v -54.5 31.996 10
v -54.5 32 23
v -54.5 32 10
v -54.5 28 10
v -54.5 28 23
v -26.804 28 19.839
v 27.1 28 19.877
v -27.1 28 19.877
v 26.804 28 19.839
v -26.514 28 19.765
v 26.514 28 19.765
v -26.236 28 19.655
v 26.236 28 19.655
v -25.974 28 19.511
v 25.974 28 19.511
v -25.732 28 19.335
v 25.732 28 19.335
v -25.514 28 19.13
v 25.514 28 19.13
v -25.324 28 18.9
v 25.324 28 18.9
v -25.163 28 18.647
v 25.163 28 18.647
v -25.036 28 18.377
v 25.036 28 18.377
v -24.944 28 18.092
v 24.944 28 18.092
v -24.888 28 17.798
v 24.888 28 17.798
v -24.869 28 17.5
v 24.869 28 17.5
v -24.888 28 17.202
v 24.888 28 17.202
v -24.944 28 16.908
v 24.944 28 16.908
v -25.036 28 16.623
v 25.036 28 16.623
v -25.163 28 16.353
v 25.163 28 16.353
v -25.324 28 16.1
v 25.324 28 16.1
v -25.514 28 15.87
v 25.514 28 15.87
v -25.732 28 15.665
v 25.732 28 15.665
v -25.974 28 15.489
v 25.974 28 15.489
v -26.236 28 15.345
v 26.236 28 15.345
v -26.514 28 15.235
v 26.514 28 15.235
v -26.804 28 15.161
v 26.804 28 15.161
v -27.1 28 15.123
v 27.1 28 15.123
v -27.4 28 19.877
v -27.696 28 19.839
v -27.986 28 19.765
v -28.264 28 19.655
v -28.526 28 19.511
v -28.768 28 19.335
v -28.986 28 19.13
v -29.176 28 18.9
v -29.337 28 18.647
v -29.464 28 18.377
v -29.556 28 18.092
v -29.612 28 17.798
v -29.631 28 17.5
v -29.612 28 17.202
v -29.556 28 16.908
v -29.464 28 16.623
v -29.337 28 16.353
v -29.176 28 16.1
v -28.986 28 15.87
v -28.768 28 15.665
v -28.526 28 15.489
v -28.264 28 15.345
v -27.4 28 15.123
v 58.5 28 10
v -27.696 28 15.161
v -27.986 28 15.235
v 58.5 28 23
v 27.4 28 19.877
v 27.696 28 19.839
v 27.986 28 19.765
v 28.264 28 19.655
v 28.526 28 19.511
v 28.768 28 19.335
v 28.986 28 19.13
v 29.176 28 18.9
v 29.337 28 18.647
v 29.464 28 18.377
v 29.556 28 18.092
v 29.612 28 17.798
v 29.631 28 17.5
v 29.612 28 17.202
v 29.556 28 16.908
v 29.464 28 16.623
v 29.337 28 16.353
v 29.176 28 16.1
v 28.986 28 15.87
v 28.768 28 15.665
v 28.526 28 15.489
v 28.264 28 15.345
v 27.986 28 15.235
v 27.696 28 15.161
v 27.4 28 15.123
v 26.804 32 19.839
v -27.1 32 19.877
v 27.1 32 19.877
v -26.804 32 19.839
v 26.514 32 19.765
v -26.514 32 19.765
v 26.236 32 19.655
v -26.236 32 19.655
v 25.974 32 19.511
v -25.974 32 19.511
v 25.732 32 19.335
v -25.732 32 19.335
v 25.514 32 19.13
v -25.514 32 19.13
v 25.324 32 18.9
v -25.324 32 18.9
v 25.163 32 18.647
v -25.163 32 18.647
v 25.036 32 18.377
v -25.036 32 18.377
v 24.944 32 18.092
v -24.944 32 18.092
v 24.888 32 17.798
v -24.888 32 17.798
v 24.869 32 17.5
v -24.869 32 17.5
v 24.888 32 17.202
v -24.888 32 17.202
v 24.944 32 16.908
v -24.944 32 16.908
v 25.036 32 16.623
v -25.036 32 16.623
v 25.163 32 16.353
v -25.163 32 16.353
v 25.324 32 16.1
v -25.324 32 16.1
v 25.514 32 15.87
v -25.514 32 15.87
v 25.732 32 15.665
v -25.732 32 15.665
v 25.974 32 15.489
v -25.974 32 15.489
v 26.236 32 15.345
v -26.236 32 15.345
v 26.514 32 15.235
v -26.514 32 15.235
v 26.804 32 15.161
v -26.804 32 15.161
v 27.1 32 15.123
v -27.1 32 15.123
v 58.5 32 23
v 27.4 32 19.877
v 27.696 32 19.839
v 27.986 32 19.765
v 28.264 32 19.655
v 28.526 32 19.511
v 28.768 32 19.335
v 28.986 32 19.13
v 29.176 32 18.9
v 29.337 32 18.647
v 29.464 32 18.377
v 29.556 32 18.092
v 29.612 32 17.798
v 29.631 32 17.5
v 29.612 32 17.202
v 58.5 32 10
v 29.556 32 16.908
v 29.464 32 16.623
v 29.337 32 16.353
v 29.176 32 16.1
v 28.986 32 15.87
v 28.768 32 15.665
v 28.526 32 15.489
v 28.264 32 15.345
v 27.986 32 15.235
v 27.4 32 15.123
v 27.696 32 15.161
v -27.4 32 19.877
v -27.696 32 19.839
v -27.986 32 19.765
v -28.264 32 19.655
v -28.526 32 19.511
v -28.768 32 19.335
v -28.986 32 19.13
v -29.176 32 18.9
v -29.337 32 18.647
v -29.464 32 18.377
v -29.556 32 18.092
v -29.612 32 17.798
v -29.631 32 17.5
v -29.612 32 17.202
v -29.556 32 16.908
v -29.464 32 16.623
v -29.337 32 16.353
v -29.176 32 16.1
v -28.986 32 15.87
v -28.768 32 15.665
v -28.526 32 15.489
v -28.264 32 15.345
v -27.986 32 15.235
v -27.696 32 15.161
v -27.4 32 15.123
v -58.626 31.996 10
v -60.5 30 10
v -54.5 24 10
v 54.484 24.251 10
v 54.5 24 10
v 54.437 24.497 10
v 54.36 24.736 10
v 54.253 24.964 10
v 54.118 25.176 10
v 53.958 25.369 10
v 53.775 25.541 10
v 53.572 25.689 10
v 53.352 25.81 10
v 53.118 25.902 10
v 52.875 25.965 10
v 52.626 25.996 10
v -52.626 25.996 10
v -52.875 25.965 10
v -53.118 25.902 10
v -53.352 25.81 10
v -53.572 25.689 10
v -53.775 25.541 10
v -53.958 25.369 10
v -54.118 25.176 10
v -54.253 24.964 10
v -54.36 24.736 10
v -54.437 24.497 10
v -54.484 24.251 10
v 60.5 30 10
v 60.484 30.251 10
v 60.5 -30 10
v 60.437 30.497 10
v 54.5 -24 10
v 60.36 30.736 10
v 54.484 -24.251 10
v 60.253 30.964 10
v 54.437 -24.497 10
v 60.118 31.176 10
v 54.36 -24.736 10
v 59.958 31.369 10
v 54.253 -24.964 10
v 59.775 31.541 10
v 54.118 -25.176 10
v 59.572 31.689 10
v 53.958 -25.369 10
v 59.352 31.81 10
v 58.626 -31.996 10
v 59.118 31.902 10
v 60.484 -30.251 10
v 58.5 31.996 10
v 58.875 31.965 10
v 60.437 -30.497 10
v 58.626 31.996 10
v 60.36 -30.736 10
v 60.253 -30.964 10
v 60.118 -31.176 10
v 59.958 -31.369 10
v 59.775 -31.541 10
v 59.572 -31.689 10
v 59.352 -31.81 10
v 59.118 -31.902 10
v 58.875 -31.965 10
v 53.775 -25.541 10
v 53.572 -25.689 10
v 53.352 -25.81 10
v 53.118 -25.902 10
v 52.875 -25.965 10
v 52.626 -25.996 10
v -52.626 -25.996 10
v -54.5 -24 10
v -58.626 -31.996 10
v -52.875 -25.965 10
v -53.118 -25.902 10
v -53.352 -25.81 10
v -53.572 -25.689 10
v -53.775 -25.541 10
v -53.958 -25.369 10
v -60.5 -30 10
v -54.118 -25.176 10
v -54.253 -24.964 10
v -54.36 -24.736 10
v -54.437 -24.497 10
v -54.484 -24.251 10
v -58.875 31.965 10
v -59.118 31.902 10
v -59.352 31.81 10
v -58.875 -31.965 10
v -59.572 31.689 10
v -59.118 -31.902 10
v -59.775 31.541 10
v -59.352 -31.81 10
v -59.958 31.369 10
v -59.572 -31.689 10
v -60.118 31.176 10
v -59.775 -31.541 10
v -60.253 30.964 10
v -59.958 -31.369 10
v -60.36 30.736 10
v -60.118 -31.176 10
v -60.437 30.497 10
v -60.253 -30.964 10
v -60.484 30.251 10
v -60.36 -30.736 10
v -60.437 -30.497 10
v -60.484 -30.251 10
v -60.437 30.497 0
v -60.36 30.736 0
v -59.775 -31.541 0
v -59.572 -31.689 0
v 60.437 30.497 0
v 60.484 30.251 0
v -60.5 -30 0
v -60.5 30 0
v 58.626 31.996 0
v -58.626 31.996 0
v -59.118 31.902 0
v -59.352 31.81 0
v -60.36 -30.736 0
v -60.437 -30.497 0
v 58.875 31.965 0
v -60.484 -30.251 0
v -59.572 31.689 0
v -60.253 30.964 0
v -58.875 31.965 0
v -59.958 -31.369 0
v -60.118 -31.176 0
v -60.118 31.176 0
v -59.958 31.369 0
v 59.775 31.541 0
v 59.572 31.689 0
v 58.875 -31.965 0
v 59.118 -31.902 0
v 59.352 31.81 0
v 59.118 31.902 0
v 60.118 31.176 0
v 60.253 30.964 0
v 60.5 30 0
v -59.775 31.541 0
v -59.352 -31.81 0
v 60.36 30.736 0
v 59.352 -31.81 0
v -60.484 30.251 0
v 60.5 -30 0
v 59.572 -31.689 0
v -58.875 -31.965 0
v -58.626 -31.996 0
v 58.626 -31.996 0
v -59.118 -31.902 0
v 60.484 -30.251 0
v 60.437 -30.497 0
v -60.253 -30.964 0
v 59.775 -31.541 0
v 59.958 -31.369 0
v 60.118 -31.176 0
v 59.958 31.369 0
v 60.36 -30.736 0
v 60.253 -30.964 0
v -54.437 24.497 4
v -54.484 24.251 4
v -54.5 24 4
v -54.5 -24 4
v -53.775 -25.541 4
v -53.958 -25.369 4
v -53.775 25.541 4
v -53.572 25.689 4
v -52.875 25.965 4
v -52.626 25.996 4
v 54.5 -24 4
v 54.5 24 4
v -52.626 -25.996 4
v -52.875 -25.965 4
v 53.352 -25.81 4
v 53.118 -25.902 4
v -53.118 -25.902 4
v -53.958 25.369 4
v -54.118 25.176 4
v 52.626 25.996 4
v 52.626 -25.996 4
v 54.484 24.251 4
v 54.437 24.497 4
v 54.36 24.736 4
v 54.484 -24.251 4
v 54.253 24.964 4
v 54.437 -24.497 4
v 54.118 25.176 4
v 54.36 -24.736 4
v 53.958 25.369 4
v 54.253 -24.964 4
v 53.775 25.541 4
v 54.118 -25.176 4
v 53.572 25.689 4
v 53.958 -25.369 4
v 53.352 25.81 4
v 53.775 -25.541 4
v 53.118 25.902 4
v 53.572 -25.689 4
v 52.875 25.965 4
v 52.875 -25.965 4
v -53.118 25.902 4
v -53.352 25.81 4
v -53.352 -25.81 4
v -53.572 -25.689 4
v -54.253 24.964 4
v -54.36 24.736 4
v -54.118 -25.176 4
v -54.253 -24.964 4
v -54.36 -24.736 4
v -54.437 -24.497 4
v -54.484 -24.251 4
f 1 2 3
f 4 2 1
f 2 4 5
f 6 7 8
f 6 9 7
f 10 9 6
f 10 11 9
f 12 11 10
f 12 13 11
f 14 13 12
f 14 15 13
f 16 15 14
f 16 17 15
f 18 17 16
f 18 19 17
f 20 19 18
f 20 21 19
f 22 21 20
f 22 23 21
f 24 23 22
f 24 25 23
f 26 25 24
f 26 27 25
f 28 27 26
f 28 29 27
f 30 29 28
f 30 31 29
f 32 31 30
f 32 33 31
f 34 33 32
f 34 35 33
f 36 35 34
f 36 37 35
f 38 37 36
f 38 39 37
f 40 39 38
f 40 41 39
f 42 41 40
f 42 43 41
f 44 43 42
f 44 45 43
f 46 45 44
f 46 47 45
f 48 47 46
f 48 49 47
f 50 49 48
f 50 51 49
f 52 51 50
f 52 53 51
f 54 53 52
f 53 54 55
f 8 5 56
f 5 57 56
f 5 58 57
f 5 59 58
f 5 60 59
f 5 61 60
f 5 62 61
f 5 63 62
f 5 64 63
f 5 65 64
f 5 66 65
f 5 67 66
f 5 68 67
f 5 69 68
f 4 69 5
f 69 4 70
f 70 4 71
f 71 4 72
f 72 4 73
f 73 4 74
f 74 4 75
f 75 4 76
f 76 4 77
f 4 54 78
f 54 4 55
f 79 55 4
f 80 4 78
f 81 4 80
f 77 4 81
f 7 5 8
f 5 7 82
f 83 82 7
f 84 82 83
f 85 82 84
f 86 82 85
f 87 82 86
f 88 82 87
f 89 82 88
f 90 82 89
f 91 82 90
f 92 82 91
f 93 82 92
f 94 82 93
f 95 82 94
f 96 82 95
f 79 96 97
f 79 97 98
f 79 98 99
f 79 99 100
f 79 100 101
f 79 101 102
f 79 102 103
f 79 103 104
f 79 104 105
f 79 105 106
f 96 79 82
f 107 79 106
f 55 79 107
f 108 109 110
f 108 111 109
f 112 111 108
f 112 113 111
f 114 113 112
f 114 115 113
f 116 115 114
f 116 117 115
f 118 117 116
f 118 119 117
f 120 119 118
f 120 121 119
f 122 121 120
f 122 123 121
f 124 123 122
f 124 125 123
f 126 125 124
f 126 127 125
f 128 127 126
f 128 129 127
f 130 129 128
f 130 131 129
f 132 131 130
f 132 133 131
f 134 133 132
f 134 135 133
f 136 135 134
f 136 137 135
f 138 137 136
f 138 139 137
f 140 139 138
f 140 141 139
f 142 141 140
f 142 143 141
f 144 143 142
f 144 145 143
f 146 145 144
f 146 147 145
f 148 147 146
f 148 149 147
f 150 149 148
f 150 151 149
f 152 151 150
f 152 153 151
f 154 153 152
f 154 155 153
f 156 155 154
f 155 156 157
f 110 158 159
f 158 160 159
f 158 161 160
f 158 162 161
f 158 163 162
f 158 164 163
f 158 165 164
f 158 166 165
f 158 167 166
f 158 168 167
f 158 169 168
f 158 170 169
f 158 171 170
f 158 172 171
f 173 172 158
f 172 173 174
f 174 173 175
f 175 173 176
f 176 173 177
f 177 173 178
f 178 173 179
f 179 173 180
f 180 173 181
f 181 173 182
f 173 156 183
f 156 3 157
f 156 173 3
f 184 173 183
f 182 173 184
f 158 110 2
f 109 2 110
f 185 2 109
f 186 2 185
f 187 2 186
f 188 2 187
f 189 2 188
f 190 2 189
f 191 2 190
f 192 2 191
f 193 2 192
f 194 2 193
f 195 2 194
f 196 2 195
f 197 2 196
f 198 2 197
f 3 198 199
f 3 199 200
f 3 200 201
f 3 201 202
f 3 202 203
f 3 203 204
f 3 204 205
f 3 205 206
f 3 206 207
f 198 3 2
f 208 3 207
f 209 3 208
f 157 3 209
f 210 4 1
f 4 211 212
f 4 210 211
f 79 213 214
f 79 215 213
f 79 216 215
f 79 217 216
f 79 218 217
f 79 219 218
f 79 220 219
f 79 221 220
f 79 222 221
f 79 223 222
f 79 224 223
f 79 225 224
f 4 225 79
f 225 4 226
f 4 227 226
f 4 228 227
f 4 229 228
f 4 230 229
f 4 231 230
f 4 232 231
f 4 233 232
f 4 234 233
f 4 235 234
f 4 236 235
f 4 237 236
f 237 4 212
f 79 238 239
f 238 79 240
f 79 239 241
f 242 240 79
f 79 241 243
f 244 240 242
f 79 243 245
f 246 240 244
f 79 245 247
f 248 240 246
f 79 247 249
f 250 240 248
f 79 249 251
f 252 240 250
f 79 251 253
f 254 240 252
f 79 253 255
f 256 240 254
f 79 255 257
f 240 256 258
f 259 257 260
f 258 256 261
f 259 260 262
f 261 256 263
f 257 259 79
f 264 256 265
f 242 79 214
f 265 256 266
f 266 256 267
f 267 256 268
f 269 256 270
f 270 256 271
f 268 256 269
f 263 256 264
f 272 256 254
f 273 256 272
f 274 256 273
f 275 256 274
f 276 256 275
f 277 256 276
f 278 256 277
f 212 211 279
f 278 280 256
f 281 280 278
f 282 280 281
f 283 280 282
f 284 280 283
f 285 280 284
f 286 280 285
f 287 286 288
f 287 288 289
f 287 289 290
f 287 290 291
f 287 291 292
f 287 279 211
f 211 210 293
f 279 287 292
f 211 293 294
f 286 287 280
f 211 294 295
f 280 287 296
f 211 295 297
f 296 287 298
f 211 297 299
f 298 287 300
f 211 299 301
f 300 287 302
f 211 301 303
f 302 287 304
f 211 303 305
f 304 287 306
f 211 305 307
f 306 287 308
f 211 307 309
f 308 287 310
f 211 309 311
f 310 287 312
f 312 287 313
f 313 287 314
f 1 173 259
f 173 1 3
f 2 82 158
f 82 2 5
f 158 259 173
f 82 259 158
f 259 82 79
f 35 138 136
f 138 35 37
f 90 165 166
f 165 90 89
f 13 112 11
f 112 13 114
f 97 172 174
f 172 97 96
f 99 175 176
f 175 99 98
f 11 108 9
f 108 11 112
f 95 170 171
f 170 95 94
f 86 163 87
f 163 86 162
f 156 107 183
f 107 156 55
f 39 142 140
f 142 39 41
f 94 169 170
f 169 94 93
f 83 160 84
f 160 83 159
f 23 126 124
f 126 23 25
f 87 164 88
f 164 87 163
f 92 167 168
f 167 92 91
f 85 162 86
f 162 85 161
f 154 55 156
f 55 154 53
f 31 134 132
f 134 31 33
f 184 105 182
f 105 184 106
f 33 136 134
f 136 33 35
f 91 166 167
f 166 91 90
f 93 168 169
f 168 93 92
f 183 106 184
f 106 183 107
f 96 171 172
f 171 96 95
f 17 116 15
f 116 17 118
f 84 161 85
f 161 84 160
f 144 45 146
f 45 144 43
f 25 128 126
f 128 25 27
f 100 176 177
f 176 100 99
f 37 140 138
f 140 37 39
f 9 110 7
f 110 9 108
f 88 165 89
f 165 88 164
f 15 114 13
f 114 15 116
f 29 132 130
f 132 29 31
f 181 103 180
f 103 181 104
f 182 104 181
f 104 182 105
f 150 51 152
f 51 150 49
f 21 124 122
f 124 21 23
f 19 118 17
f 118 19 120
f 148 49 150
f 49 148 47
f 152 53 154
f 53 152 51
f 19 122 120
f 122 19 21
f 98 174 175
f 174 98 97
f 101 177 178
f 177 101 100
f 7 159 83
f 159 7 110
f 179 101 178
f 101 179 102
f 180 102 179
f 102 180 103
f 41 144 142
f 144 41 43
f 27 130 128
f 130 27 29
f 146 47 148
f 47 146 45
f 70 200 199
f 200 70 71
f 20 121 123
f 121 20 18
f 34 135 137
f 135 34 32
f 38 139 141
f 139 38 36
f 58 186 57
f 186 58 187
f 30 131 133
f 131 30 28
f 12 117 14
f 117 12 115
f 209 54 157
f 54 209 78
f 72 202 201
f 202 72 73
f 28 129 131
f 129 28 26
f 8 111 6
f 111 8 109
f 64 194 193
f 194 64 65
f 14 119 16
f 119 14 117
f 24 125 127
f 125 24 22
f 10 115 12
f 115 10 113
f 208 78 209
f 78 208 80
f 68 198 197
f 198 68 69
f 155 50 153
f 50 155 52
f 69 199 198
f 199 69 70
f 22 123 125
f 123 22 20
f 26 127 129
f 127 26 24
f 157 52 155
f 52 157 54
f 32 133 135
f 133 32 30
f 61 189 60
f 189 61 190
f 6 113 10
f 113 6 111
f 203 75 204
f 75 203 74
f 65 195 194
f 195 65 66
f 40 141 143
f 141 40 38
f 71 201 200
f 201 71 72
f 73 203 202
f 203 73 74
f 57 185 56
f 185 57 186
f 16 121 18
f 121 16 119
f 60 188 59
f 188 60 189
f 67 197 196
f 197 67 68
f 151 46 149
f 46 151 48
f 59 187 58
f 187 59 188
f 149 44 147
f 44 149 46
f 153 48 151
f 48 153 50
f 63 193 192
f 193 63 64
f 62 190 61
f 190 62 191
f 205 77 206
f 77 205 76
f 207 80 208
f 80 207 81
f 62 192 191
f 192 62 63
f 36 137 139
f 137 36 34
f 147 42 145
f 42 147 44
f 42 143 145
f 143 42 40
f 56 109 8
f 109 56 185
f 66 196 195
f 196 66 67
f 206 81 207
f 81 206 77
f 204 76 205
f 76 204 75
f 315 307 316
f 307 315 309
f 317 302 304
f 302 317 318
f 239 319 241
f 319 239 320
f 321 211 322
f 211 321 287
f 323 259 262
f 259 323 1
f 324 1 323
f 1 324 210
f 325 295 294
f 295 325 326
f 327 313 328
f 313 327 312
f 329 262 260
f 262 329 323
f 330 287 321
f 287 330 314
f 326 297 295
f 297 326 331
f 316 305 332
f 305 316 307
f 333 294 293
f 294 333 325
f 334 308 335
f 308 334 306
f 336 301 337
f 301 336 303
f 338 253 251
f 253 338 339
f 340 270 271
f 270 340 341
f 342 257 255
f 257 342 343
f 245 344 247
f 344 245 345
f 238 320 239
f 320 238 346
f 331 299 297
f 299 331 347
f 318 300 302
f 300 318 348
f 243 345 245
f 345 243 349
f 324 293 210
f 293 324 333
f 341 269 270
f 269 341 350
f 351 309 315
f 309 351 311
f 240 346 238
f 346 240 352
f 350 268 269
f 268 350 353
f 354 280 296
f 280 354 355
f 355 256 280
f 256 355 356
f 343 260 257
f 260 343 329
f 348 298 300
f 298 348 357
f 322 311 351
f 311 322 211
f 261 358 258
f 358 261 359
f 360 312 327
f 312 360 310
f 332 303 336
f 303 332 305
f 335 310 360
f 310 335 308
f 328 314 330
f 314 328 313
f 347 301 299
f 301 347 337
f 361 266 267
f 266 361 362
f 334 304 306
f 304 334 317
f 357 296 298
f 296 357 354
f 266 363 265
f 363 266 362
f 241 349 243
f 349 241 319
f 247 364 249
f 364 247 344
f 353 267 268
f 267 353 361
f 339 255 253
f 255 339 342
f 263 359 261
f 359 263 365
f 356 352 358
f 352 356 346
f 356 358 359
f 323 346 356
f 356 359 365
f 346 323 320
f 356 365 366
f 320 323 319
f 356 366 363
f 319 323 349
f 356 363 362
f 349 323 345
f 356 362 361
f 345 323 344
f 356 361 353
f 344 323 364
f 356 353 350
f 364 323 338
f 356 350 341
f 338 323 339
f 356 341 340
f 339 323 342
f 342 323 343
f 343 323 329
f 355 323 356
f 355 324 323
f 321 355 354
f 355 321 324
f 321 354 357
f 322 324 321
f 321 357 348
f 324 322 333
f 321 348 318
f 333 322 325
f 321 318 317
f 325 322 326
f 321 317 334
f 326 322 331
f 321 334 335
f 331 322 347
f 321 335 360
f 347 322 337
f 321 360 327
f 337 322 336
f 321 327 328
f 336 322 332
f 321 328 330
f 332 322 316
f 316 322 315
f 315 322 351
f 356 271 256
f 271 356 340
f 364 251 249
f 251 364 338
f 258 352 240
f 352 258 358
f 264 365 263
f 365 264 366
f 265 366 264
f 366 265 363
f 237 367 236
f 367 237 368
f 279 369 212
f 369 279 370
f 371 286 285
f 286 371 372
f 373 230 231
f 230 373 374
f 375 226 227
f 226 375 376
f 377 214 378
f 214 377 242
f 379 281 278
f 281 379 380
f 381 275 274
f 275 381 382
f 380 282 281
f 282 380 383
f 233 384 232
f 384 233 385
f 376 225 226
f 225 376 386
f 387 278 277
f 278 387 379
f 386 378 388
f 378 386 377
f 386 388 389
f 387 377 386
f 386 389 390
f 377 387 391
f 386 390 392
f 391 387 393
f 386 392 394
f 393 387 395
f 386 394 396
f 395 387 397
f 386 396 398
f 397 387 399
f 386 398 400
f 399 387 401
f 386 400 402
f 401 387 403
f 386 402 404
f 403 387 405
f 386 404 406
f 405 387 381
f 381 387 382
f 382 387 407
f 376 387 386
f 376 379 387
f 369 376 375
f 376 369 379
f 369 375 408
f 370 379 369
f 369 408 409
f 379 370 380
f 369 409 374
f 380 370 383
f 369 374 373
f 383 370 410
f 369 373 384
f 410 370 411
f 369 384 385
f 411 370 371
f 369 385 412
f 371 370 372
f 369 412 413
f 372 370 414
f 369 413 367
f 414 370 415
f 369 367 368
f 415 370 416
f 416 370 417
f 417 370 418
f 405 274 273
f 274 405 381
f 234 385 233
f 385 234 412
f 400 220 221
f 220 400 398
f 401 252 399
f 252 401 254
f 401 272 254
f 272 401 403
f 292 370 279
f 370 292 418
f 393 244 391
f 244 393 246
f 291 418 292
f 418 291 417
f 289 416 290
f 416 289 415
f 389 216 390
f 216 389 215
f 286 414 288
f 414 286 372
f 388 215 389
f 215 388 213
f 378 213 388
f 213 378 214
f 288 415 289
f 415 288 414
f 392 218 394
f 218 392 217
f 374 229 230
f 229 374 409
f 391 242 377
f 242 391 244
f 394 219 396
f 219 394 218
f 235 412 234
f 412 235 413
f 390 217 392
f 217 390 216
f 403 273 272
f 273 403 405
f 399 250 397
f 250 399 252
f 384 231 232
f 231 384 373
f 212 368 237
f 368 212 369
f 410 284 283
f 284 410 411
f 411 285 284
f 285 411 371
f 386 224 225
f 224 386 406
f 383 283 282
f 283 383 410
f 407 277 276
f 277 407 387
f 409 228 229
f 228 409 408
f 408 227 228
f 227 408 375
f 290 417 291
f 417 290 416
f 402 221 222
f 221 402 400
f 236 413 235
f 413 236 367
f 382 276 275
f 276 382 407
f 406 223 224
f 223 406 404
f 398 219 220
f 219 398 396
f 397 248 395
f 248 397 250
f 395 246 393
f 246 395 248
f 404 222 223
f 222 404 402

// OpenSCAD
//outside dimensions of the box
inside_width  = 107 + 2;    //x dimension
inside_depth =   50 + 2;    //y dimension
height = 10;   //z dimension

//additional parameters
corner_radius = 2;      // radius of box corners
wall_thickness = 4;     // total thickness of any wall

$fn=50;

// make 4 "posts" about 0,0,0 offset by +/-x +/-y 
module posts(x_inside, y,z,h,r)
{
    translate([x_inside,y,z]){      // move post to this location
        cylinder(r = r, h = h);     // make one post
    }
    translate([-x_inside,y,z]){     // move post to this location
        cylinder(r = r, h = h);     // make one post
    }   
    translate([-x_inside,-y,z]){       // move post to this location
        cylinder(r = r, h = h);     // make one post
    }
    translate([x_inside,-y,z]){        // move post to this location
        cylinder(r = r, h = h);     // make one post
    }    
}

difference()
{
    translate( [ -inside_width /2, inside_depth/2 + wall_thickness + corner_radius  , +height])
    {
        rotate( [ 90, 0, 0 ])
        #cube ([ inside_width + wall_thickness, inside_depth/4,  wall_thickness], center=false);
    }

    translate( [ inside_width /4 , inside_depth/2 + wall_thickness*2 , height * 7/4 ])
    rotate( [ 90, 0, 0 ])
    cylinder(height, d = 3/16 * 25.4, center = false);

    translate( [ -inside_width /4 , inside_depth/2 + wall_thickness*2 , height * 7/4 ])
    rotate( [ 90, 0, 0 ])
    cylinder(height, d = 3/16 * 25.4, center = false);
}

difference(){

    difference() { // make 2 boxes one inside the other and remove "inside box" from "outside box"
        // use posts to define OUTSIDE of a solid box centered on 0,0
        hull(){
            posts(  
                x_inside =(inside_width/2  + wall_thickness),
                y=(inside_depth/2 + wall_thickness ),
                z= 0,
                h= height,
                r = corner_radius);
        }
            
        // use posts to define INSIDE of a solid box centered on 0,0
        hull(){
            posts(
                x_inside =(inside_width/2 - corner_radius),
                y=(inside_depth/2 - corner_radius),
                z= wall_thickness, // move up to create bottom
                h= height - wall_thickness,
                r = corner_radius);
        }

        // now we have a simple hollow box.
    }
}
